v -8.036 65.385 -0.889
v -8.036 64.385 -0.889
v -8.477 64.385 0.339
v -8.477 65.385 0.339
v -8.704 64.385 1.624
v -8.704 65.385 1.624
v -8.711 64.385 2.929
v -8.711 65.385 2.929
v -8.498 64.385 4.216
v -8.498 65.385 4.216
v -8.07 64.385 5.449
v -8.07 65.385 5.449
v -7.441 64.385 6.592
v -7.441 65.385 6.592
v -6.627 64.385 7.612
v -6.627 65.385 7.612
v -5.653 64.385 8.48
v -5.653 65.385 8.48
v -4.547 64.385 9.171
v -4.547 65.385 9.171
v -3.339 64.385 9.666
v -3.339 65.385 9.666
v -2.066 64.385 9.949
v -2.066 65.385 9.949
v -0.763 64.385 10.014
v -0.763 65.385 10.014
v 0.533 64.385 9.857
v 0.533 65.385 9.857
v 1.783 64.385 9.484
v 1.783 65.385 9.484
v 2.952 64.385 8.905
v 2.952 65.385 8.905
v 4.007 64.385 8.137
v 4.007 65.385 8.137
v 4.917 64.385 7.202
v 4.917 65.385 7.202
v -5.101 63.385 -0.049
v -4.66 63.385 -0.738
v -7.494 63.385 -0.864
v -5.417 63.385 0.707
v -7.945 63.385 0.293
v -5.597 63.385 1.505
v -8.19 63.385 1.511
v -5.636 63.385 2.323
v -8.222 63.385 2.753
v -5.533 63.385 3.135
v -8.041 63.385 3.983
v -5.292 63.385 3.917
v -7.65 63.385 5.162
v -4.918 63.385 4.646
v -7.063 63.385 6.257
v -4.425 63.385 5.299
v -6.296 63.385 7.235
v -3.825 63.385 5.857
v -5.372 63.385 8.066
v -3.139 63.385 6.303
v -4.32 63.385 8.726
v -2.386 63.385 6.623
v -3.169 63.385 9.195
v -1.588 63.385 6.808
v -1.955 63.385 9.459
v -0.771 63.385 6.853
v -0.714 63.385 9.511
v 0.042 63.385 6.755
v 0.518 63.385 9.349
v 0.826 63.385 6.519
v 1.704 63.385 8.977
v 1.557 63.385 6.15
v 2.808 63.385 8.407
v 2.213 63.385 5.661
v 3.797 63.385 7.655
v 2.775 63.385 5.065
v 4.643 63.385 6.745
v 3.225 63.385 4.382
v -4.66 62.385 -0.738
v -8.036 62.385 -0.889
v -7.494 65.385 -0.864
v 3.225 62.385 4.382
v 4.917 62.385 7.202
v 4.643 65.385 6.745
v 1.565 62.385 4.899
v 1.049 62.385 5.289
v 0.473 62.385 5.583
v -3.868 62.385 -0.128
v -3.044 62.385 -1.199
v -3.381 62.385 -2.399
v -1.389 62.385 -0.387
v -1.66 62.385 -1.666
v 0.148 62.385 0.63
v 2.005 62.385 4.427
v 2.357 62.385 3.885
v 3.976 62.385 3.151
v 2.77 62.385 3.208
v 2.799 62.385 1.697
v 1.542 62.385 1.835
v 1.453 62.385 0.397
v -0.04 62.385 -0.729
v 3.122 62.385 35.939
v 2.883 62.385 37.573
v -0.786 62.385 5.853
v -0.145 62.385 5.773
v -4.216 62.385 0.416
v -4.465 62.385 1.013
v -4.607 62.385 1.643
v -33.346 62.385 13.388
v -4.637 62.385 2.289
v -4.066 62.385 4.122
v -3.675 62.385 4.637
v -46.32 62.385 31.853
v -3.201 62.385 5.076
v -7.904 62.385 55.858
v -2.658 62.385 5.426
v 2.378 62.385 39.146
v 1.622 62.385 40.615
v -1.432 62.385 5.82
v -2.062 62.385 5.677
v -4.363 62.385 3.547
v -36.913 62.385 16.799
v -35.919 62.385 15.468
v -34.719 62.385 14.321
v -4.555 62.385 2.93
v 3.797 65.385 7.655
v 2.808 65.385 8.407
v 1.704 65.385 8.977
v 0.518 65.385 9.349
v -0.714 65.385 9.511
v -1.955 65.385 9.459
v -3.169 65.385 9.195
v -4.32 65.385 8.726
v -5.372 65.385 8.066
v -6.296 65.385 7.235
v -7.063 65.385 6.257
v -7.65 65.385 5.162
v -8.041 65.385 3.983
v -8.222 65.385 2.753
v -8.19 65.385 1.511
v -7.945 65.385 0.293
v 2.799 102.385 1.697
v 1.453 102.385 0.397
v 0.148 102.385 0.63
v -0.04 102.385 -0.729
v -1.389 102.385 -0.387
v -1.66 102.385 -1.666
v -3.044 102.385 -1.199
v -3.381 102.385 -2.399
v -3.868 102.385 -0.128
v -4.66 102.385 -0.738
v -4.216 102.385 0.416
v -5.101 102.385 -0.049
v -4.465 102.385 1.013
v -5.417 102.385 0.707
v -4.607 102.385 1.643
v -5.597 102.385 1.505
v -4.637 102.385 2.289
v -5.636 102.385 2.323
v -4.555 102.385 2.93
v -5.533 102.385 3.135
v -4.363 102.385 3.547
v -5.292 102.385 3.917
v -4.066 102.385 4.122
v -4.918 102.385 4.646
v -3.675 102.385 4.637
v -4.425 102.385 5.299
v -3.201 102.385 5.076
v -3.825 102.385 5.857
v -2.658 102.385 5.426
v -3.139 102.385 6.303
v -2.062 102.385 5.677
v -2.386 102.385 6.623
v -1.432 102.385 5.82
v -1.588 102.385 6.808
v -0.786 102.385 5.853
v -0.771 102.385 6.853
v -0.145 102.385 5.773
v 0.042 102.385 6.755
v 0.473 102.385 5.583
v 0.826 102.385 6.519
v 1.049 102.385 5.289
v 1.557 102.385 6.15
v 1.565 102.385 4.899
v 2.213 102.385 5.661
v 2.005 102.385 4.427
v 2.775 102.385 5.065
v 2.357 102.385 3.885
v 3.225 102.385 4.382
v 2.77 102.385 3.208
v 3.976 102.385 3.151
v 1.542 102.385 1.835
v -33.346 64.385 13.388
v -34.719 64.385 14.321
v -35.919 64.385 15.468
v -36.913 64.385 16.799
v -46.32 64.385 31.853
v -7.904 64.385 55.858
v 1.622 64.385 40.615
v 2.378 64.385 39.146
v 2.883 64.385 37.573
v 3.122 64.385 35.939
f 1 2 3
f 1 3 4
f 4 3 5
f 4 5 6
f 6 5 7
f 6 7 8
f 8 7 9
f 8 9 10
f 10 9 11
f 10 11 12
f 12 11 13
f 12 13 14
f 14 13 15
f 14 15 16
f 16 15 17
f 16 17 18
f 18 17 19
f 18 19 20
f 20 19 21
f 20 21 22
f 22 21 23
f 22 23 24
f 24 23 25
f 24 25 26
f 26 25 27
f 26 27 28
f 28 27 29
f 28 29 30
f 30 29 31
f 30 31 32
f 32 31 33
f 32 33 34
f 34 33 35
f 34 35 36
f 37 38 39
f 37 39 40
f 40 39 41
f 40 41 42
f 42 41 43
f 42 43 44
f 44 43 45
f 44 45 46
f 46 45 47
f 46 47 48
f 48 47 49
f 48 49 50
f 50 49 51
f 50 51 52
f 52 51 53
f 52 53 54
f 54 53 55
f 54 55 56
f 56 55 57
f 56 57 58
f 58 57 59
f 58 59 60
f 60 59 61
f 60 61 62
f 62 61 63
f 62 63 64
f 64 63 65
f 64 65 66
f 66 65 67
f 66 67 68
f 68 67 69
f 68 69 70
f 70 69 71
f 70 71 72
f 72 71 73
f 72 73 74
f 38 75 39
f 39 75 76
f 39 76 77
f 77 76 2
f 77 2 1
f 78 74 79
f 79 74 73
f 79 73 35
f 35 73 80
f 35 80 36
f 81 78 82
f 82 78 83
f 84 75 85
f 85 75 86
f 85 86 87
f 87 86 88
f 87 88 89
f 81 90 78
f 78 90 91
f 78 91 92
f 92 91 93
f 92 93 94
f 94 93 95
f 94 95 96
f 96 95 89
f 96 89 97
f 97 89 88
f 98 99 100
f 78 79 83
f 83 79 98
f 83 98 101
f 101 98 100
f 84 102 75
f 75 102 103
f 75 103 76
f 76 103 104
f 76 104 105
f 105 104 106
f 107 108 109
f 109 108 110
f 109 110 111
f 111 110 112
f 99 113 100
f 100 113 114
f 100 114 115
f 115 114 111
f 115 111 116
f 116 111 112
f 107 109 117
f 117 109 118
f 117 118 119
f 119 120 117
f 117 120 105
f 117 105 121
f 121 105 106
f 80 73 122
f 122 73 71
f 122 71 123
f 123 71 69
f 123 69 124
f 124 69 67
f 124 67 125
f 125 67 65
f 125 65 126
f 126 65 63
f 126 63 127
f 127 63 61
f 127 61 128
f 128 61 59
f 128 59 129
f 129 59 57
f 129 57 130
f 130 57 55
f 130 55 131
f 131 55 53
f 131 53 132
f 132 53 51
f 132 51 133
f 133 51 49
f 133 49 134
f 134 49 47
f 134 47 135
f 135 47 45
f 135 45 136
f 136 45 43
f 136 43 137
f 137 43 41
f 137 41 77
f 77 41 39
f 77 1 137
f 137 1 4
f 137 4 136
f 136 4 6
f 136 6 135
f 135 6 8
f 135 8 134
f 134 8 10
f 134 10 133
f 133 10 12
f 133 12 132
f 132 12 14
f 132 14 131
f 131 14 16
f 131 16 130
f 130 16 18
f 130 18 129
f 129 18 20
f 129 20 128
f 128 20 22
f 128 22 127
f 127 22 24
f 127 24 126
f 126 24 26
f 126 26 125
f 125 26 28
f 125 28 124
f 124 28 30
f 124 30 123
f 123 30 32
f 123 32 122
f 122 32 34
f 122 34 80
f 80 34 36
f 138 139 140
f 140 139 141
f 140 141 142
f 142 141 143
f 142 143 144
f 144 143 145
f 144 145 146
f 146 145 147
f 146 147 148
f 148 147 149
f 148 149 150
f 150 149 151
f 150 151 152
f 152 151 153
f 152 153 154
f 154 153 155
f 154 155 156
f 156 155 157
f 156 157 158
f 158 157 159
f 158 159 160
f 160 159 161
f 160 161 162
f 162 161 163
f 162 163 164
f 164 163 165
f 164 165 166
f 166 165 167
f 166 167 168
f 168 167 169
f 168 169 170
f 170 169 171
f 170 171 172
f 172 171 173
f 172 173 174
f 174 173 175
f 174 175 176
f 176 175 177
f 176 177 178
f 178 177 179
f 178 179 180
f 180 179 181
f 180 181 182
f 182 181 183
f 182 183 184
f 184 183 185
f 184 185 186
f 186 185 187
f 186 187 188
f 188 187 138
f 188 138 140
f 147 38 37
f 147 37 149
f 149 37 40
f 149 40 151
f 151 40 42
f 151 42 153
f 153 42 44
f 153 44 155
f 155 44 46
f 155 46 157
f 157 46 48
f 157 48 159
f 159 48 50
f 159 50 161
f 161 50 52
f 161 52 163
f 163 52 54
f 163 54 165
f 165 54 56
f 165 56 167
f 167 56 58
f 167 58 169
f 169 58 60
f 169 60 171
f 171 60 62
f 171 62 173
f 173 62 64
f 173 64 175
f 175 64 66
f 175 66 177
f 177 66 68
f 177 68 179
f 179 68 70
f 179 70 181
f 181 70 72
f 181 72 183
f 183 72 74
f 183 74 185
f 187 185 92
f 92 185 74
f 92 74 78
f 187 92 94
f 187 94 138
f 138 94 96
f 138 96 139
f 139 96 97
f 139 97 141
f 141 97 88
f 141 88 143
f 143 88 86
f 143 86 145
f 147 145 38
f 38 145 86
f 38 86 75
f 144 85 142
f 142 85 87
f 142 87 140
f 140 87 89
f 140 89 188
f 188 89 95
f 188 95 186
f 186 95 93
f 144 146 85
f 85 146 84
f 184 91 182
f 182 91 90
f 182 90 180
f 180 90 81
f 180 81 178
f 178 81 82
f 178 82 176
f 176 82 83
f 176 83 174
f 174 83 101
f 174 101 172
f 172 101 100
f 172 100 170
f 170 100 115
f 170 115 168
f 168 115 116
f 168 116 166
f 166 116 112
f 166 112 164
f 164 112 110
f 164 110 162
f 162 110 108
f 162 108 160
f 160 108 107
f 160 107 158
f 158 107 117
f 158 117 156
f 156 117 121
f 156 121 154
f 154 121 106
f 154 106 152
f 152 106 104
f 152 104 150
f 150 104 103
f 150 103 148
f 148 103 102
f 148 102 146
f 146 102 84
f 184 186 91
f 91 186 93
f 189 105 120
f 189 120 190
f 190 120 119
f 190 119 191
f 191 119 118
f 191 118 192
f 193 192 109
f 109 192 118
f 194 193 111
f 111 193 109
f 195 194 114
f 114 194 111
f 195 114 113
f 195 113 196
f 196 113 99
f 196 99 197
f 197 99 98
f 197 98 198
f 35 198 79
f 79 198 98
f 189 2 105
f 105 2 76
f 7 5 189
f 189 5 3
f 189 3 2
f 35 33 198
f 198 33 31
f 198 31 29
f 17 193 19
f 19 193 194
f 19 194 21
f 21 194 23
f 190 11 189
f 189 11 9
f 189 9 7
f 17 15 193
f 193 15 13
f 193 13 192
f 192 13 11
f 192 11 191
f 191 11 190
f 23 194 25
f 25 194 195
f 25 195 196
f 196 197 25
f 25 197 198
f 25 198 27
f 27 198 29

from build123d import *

# Parameters (mm, degrees)
SALIENTE_EXTRUIR3_DEPTH = 1
SALIENTE_EXTRUIR4_DEPTH = 2
SALIENTE_EXTRUIR5_DEPTH = 40
SALIENTE_EXTRUIR6_DEPTH = 2


with BuildPart() as part:
    # Croquis3 → Saliente-Extruir3 (new body)
    with BuildSketch(Plane(origin=(0, 62.385327456, 0), x_dir=(1, 0, 0), z_dir=(0, 1, 0))):
        with BuildLine():
            Line((-8.035911824, 0.88857317), (-4.660164738, 0.738374056))
            ThreePointArc((-4.660164738, 0.738374056), (-3.491878014, -6.094633439), (3.225323709, -4.38171595))
            Line((3.225323709, -4.38171595), (4.917369229, -7.202342932))
            ThreePointArc((4.917369229, -7.202342932), (-5.114744648, -8.849076594), (-8.035911824, 0.88857317))
        make_face()
    extrude(amount=SALIENTE_EXTRUIR3_DEPTH)

    # Croquis4 → Saliente-Extruir4 (add)
    with BuildSketch(Plane(origin=(0, 63.385327456, 0), x_dir=(1, 0, 0), z_dir=(0, 1, 0))):
        with BuildLine():
            Line((4.917369229, -7.202342932), (4.642987805, -6.74495119))
            ThreePointArc((4.642987805, -6.74495119), (-4.860151229, -8.418565495), (-7.493817117, 0.864453429))
            Line((-7.493817117, 0.864453429), (-8.035911824, 0.88857317))
            ThreePointArc((-8.035911824, 0.88857317), (-5.114744648, -8.849076594), (4.917369229, -7.202342932))
        make_face()
    extrude(amount=SALIENTE_EXTRUIR4_DEPTH)

    # Croquis1 → Saliente-Extruir5 (add)
    with BuildSketch(Plane(origin=(0, 62.385327456, 0), x_dir=(1, 0, 0), z_dir=(0, 1, 0))):
        with BuildLine():
            Line((-4.660164738, 0.738374056), (-3.38107943, 2.399345645))
            ThreePointArc((-3.38107943, 2.399345645), (0.723456308, 0.1886696), (3.976176138, -3.151108223))
            Line((3.976176138, -3.151108223), (3.225323709, -4.38171595))
            ThreePointArc((3.225323709, -4.38171595), (-3.491878014, -6.094633439), (-4.660164738, 0.738374056))
        make_face()
        with BuildLine():
            Line((-3.867867022, 0.128239376), (-3.043523867, 1.19870008))
            ThreePointArc((-3.043523867, 1.19870008), (0.147575108, -0.629578738), (2.769944661, -3.208123684))
            Line((2.769944661, -3.208123684), (2.357240199, -3.884524638))
            ThreePointArc((2.357240199, -3.884524638), (-2.936970885, -5.262605721), (-3.867867022, 0.128239376))
        make_face(mode=Mode.SUBTRACT)
    extrude(amount=SALIENTE_EXTRUIR5_DEPTH)

    # Croquis8 → Saliente-Extruir6 (add)
    with BuildSketch(Plane.XZ.offset(-62.385327456)):
        with BuildLine():
            ThreePointArc((3.121797308, 35.939024727), (2.663211319, 38.370313658), (1.621742308, 40.614597347))
            Line((1.621742308, 40.614597347), (-7.903634902, 55.858387398))
            Line((-7.903634902, 55.858387398), (-46.320213658, 31.853044728))
            Line((-46.320213658, 31.853044728), (-36.913147682, 16.798592231))
            ThreePointArc((-36.913147682, 16.798592231), (-35.343131478, 14.869681606), (-33.345658311, 13.38787594))
            Line((-33.345658311, 13.38787594), (-8.035911824, -0.88857317))
            ThreePointArc((-8.035911824, -0.88857317), (-5.114744648, 8.849076594), (4.917369229, 7.202342932))
            Line((4.917369229, 7.202342932), (3.121797308, 35.939024727))
        make_face()
    extrude(amount=-SALIENTE_EXTRUIR6_DEPTH)


solid = part.part
